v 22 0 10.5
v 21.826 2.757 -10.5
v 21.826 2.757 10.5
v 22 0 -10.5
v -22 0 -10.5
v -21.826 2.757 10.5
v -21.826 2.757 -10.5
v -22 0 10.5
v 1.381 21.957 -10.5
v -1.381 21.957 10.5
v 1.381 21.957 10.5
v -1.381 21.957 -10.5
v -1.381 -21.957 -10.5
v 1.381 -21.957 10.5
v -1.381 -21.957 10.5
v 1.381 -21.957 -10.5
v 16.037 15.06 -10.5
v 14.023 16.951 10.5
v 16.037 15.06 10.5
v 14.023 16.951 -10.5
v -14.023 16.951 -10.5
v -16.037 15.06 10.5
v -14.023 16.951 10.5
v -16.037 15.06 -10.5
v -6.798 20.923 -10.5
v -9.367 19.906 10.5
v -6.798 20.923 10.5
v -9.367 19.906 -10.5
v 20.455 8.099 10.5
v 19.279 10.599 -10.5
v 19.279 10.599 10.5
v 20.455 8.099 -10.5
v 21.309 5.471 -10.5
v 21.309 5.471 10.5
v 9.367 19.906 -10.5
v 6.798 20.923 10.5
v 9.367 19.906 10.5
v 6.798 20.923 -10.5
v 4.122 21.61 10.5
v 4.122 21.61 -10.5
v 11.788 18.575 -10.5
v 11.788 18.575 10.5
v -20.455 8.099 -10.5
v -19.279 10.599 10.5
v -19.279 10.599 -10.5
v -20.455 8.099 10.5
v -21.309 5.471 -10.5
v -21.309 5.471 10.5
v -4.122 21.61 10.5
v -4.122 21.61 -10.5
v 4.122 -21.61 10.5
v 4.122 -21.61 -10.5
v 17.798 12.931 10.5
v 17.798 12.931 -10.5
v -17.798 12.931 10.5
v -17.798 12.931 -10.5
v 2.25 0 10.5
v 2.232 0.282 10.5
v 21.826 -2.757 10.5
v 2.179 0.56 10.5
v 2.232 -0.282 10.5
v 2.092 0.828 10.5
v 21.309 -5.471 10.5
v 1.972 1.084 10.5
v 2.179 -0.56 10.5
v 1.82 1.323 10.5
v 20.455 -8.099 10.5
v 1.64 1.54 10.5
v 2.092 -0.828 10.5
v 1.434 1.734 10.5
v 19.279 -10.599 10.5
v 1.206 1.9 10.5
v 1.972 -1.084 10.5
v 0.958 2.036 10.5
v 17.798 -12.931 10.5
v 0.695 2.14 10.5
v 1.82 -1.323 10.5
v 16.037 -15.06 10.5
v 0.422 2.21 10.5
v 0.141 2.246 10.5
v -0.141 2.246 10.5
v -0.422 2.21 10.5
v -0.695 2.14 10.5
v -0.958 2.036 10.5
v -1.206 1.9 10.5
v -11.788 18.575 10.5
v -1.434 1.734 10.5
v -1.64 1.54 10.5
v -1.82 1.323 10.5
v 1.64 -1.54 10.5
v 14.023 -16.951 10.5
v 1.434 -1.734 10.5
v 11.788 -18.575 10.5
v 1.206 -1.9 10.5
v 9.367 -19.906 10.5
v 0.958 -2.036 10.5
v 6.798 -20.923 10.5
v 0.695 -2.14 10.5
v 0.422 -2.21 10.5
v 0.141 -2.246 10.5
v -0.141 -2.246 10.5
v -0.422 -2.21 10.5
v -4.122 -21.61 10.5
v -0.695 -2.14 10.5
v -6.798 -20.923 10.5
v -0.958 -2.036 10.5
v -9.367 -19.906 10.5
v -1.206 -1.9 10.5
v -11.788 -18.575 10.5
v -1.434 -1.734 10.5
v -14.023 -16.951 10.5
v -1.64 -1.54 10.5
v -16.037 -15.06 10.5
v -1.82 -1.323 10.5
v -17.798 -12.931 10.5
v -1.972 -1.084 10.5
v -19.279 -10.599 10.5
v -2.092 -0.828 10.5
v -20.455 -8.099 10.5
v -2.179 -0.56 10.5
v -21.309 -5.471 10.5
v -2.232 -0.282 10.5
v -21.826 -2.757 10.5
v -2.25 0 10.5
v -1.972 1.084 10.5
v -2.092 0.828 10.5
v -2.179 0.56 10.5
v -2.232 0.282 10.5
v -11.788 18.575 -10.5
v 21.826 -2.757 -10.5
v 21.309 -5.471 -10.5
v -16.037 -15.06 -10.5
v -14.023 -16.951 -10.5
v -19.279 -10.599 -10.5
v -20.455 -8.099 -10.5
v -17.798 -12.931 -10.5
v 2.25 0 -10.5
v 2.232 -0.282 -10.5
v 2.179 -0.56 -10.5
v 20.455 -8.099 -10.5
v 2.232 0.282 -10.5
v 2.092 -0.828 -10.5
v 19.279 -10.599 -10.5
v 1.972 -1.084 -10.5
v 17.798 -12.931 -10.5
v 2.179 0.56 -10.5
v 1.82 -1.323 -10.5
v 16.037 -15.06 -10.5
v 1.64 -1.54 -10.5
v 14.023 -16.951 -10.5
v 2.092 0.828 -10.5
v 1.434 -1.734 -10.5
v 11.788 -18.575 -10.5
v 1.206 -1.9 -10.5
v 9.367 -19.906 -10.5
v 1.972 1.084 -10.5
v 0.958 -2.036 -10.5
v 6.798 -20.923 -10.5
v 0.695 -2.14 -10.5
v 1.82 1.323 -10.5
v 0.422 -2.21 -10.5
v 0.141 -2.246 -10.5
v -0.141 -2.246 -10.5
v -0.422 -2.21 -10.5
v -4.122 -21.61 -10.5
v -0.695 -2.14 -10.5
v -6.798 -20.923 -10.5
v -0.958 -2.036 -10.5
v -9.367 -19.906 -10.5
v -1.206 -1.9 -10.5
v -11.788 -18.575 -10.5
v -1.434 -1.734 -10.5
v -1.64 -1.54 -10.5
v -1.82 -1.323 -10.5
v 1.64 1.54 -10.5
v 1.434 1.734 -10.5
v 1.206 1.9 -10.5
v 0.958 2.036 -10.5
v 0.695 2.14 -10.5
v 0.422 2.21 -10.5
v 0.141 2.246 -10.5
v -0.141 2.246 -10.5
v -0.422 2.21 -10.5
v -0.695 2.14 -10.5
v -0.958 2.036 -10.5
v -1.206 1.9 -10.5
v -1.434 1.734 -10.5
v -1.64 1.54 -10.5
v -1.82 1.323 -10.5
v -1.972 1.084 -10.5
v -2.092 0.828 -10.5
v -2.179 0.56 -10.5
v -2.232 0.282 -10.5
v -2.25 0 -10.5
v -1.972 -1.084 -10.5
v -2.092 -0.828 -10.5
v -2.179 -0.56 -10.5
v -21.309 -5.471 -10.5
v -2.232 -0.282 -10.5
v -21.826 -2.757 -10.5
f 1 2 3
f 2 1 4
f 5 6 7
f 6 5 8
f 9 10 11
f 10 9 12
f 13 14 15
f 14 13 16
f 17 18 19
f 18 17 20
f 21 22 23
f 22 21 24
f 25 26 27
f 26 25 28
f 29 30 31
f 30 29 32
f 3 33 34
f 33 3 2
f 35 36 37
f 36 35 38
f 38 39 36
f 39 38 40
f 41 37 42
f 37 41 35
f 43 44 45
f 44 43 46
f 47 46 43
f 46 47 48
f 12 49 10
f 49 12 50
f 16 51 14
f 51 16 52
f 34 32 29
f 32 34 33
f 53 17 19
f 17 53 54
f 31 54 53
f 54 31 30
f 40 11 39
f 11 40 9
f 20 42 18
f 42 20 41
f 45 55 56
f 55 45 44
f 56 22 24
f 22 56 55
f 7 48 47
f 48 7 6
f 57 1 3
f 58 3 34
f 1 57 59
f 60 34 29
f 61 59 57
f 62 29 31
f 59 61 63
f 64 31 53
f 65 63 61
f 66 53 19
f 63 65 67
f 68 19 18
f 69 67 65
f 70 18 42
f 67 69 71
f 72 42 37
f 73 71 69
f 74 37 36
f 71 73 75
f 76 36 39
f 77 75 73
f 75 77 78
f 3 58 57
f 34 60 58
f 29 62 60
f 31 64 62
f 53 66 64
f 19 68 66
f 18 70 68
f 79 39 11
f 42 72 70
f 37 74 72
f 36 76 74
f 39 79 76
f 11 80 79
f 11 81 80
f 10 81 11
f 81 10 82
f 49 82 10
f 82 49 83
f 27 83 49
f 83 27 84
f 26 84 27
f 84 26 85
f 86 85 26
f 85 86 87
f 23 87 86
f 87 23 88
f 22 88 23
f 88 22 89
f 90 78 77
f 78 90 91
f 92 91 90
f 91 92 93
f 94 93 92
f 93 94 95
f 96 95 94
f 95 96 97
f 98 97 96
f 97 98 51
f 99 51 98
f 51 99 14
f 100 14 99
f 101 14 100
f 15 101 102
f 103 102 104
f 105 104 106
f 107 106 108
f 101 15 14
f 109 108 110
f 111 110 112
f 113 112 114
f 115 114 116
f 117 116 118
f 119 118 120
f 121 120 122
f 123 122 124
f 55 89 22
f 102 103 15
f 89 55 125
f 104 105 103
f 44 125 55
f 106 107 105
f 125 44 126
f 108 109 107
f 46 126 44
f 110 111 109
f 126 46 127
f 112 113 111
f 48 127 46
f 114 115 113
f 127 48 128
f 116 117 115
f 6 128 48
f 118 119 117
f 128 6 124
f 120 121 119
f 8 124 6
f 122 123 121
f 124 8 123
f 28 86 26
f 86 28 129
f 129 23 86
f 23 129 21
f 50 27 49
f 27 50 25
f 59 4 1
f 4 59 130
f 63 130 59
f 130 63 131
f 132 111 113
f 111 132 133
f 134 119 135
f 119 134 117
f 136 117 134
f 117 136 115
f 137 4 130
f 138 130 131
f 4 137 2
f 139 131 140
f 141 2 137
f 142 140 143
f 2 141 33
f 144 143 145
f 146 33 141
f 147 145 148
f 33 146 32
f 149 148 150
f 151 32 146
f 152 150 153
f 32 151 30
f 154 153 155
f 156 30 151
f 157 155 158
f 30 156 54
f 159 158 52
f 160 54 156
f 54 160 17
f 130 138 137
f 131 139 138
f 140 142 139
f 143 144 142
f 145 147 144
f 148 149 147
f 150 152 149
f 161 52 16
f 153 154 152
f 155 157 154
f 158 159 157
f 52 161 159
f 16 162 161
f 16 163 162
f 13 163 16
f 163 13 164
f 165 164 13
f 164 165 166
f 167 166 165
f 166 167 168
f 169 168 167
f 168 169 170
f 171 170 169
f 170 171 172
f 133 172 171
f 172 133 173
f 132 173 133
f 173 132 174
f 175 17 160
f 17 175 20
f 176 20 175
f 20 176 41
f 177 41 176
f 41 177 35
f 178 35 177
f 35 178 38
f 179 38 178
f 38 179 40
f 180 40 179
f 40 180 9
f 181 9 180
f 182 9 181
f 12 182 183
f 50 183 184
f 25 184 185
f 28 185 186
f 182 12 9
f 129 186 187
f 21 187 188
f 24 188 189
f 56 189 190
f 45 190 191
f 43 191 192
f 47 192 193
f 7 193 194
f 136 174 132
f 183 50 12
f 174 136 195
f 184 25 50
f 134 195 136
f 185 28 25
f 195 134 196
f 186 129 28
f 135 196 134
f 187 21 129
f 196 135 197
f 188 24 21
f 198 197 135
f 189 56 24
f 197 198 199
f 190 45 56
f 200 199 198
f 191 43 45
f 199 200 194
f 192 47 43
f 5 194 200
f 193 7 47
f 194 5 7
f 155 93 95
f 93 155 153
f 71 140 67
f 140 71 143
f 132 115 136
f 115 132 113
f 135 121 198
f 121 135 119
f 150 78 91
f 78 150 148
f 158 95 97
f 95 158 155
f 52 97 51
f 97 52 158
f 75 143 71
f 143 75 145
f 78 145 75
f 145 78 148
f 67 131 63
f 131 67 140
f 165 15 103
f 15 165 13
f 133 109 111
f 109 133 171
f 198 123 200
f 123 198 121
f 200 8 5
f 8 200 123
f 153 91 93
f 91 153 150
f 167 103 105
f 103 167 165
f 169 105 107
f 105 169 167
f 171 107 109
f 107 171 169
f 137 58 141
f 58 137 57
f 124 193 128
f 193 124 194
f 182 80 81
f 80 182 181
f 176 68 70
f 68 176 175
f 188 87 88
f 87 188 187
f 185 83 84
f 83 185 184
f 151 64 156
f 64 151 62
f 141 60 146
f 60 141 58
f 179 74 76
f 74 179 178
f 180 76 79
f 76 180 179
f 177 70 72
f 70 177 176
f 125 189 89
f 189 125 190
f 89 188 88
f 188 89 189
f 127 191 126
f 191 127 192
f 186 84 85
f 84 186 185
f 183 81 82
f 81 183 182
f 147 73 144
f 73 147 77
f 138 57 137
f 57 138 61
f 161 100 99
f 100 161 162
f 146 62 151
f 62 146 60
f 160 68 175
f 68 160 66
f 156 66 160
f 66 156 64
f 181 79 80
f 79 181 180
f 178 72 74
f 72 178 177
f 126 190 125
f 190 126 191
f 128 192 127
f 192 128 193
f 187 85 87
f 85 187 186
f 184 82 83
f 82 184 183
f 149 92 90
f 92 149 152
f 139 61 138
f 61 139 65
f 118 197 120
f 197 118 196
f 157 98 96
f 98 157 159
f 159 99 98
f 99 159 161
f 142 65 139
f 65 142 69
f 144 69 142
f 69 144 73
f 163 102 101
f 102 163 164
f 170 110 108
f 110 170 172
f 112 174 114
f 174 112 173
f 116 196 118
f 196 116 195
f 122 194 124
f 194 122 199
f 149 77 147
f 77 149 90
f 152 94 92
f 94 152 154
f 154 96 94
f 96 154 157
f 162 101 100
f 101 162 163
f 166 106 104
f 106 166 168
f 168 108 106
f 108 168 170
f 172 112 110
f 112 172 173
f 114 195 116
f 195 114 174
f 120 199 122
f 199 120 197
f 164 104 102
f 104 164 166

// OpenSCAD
$fn = 50;


difference() {
	union() {
		translate(v = [0, 0, -10.5000000000]) {
			cylinder(h = 21, r = 22.0000000000);
		}
	}
	union() {
		translate(v = [0, 0, -100.0000000000]) {
			cylinder(h = 200, r = 2.2500000000);
		}
	}
}
